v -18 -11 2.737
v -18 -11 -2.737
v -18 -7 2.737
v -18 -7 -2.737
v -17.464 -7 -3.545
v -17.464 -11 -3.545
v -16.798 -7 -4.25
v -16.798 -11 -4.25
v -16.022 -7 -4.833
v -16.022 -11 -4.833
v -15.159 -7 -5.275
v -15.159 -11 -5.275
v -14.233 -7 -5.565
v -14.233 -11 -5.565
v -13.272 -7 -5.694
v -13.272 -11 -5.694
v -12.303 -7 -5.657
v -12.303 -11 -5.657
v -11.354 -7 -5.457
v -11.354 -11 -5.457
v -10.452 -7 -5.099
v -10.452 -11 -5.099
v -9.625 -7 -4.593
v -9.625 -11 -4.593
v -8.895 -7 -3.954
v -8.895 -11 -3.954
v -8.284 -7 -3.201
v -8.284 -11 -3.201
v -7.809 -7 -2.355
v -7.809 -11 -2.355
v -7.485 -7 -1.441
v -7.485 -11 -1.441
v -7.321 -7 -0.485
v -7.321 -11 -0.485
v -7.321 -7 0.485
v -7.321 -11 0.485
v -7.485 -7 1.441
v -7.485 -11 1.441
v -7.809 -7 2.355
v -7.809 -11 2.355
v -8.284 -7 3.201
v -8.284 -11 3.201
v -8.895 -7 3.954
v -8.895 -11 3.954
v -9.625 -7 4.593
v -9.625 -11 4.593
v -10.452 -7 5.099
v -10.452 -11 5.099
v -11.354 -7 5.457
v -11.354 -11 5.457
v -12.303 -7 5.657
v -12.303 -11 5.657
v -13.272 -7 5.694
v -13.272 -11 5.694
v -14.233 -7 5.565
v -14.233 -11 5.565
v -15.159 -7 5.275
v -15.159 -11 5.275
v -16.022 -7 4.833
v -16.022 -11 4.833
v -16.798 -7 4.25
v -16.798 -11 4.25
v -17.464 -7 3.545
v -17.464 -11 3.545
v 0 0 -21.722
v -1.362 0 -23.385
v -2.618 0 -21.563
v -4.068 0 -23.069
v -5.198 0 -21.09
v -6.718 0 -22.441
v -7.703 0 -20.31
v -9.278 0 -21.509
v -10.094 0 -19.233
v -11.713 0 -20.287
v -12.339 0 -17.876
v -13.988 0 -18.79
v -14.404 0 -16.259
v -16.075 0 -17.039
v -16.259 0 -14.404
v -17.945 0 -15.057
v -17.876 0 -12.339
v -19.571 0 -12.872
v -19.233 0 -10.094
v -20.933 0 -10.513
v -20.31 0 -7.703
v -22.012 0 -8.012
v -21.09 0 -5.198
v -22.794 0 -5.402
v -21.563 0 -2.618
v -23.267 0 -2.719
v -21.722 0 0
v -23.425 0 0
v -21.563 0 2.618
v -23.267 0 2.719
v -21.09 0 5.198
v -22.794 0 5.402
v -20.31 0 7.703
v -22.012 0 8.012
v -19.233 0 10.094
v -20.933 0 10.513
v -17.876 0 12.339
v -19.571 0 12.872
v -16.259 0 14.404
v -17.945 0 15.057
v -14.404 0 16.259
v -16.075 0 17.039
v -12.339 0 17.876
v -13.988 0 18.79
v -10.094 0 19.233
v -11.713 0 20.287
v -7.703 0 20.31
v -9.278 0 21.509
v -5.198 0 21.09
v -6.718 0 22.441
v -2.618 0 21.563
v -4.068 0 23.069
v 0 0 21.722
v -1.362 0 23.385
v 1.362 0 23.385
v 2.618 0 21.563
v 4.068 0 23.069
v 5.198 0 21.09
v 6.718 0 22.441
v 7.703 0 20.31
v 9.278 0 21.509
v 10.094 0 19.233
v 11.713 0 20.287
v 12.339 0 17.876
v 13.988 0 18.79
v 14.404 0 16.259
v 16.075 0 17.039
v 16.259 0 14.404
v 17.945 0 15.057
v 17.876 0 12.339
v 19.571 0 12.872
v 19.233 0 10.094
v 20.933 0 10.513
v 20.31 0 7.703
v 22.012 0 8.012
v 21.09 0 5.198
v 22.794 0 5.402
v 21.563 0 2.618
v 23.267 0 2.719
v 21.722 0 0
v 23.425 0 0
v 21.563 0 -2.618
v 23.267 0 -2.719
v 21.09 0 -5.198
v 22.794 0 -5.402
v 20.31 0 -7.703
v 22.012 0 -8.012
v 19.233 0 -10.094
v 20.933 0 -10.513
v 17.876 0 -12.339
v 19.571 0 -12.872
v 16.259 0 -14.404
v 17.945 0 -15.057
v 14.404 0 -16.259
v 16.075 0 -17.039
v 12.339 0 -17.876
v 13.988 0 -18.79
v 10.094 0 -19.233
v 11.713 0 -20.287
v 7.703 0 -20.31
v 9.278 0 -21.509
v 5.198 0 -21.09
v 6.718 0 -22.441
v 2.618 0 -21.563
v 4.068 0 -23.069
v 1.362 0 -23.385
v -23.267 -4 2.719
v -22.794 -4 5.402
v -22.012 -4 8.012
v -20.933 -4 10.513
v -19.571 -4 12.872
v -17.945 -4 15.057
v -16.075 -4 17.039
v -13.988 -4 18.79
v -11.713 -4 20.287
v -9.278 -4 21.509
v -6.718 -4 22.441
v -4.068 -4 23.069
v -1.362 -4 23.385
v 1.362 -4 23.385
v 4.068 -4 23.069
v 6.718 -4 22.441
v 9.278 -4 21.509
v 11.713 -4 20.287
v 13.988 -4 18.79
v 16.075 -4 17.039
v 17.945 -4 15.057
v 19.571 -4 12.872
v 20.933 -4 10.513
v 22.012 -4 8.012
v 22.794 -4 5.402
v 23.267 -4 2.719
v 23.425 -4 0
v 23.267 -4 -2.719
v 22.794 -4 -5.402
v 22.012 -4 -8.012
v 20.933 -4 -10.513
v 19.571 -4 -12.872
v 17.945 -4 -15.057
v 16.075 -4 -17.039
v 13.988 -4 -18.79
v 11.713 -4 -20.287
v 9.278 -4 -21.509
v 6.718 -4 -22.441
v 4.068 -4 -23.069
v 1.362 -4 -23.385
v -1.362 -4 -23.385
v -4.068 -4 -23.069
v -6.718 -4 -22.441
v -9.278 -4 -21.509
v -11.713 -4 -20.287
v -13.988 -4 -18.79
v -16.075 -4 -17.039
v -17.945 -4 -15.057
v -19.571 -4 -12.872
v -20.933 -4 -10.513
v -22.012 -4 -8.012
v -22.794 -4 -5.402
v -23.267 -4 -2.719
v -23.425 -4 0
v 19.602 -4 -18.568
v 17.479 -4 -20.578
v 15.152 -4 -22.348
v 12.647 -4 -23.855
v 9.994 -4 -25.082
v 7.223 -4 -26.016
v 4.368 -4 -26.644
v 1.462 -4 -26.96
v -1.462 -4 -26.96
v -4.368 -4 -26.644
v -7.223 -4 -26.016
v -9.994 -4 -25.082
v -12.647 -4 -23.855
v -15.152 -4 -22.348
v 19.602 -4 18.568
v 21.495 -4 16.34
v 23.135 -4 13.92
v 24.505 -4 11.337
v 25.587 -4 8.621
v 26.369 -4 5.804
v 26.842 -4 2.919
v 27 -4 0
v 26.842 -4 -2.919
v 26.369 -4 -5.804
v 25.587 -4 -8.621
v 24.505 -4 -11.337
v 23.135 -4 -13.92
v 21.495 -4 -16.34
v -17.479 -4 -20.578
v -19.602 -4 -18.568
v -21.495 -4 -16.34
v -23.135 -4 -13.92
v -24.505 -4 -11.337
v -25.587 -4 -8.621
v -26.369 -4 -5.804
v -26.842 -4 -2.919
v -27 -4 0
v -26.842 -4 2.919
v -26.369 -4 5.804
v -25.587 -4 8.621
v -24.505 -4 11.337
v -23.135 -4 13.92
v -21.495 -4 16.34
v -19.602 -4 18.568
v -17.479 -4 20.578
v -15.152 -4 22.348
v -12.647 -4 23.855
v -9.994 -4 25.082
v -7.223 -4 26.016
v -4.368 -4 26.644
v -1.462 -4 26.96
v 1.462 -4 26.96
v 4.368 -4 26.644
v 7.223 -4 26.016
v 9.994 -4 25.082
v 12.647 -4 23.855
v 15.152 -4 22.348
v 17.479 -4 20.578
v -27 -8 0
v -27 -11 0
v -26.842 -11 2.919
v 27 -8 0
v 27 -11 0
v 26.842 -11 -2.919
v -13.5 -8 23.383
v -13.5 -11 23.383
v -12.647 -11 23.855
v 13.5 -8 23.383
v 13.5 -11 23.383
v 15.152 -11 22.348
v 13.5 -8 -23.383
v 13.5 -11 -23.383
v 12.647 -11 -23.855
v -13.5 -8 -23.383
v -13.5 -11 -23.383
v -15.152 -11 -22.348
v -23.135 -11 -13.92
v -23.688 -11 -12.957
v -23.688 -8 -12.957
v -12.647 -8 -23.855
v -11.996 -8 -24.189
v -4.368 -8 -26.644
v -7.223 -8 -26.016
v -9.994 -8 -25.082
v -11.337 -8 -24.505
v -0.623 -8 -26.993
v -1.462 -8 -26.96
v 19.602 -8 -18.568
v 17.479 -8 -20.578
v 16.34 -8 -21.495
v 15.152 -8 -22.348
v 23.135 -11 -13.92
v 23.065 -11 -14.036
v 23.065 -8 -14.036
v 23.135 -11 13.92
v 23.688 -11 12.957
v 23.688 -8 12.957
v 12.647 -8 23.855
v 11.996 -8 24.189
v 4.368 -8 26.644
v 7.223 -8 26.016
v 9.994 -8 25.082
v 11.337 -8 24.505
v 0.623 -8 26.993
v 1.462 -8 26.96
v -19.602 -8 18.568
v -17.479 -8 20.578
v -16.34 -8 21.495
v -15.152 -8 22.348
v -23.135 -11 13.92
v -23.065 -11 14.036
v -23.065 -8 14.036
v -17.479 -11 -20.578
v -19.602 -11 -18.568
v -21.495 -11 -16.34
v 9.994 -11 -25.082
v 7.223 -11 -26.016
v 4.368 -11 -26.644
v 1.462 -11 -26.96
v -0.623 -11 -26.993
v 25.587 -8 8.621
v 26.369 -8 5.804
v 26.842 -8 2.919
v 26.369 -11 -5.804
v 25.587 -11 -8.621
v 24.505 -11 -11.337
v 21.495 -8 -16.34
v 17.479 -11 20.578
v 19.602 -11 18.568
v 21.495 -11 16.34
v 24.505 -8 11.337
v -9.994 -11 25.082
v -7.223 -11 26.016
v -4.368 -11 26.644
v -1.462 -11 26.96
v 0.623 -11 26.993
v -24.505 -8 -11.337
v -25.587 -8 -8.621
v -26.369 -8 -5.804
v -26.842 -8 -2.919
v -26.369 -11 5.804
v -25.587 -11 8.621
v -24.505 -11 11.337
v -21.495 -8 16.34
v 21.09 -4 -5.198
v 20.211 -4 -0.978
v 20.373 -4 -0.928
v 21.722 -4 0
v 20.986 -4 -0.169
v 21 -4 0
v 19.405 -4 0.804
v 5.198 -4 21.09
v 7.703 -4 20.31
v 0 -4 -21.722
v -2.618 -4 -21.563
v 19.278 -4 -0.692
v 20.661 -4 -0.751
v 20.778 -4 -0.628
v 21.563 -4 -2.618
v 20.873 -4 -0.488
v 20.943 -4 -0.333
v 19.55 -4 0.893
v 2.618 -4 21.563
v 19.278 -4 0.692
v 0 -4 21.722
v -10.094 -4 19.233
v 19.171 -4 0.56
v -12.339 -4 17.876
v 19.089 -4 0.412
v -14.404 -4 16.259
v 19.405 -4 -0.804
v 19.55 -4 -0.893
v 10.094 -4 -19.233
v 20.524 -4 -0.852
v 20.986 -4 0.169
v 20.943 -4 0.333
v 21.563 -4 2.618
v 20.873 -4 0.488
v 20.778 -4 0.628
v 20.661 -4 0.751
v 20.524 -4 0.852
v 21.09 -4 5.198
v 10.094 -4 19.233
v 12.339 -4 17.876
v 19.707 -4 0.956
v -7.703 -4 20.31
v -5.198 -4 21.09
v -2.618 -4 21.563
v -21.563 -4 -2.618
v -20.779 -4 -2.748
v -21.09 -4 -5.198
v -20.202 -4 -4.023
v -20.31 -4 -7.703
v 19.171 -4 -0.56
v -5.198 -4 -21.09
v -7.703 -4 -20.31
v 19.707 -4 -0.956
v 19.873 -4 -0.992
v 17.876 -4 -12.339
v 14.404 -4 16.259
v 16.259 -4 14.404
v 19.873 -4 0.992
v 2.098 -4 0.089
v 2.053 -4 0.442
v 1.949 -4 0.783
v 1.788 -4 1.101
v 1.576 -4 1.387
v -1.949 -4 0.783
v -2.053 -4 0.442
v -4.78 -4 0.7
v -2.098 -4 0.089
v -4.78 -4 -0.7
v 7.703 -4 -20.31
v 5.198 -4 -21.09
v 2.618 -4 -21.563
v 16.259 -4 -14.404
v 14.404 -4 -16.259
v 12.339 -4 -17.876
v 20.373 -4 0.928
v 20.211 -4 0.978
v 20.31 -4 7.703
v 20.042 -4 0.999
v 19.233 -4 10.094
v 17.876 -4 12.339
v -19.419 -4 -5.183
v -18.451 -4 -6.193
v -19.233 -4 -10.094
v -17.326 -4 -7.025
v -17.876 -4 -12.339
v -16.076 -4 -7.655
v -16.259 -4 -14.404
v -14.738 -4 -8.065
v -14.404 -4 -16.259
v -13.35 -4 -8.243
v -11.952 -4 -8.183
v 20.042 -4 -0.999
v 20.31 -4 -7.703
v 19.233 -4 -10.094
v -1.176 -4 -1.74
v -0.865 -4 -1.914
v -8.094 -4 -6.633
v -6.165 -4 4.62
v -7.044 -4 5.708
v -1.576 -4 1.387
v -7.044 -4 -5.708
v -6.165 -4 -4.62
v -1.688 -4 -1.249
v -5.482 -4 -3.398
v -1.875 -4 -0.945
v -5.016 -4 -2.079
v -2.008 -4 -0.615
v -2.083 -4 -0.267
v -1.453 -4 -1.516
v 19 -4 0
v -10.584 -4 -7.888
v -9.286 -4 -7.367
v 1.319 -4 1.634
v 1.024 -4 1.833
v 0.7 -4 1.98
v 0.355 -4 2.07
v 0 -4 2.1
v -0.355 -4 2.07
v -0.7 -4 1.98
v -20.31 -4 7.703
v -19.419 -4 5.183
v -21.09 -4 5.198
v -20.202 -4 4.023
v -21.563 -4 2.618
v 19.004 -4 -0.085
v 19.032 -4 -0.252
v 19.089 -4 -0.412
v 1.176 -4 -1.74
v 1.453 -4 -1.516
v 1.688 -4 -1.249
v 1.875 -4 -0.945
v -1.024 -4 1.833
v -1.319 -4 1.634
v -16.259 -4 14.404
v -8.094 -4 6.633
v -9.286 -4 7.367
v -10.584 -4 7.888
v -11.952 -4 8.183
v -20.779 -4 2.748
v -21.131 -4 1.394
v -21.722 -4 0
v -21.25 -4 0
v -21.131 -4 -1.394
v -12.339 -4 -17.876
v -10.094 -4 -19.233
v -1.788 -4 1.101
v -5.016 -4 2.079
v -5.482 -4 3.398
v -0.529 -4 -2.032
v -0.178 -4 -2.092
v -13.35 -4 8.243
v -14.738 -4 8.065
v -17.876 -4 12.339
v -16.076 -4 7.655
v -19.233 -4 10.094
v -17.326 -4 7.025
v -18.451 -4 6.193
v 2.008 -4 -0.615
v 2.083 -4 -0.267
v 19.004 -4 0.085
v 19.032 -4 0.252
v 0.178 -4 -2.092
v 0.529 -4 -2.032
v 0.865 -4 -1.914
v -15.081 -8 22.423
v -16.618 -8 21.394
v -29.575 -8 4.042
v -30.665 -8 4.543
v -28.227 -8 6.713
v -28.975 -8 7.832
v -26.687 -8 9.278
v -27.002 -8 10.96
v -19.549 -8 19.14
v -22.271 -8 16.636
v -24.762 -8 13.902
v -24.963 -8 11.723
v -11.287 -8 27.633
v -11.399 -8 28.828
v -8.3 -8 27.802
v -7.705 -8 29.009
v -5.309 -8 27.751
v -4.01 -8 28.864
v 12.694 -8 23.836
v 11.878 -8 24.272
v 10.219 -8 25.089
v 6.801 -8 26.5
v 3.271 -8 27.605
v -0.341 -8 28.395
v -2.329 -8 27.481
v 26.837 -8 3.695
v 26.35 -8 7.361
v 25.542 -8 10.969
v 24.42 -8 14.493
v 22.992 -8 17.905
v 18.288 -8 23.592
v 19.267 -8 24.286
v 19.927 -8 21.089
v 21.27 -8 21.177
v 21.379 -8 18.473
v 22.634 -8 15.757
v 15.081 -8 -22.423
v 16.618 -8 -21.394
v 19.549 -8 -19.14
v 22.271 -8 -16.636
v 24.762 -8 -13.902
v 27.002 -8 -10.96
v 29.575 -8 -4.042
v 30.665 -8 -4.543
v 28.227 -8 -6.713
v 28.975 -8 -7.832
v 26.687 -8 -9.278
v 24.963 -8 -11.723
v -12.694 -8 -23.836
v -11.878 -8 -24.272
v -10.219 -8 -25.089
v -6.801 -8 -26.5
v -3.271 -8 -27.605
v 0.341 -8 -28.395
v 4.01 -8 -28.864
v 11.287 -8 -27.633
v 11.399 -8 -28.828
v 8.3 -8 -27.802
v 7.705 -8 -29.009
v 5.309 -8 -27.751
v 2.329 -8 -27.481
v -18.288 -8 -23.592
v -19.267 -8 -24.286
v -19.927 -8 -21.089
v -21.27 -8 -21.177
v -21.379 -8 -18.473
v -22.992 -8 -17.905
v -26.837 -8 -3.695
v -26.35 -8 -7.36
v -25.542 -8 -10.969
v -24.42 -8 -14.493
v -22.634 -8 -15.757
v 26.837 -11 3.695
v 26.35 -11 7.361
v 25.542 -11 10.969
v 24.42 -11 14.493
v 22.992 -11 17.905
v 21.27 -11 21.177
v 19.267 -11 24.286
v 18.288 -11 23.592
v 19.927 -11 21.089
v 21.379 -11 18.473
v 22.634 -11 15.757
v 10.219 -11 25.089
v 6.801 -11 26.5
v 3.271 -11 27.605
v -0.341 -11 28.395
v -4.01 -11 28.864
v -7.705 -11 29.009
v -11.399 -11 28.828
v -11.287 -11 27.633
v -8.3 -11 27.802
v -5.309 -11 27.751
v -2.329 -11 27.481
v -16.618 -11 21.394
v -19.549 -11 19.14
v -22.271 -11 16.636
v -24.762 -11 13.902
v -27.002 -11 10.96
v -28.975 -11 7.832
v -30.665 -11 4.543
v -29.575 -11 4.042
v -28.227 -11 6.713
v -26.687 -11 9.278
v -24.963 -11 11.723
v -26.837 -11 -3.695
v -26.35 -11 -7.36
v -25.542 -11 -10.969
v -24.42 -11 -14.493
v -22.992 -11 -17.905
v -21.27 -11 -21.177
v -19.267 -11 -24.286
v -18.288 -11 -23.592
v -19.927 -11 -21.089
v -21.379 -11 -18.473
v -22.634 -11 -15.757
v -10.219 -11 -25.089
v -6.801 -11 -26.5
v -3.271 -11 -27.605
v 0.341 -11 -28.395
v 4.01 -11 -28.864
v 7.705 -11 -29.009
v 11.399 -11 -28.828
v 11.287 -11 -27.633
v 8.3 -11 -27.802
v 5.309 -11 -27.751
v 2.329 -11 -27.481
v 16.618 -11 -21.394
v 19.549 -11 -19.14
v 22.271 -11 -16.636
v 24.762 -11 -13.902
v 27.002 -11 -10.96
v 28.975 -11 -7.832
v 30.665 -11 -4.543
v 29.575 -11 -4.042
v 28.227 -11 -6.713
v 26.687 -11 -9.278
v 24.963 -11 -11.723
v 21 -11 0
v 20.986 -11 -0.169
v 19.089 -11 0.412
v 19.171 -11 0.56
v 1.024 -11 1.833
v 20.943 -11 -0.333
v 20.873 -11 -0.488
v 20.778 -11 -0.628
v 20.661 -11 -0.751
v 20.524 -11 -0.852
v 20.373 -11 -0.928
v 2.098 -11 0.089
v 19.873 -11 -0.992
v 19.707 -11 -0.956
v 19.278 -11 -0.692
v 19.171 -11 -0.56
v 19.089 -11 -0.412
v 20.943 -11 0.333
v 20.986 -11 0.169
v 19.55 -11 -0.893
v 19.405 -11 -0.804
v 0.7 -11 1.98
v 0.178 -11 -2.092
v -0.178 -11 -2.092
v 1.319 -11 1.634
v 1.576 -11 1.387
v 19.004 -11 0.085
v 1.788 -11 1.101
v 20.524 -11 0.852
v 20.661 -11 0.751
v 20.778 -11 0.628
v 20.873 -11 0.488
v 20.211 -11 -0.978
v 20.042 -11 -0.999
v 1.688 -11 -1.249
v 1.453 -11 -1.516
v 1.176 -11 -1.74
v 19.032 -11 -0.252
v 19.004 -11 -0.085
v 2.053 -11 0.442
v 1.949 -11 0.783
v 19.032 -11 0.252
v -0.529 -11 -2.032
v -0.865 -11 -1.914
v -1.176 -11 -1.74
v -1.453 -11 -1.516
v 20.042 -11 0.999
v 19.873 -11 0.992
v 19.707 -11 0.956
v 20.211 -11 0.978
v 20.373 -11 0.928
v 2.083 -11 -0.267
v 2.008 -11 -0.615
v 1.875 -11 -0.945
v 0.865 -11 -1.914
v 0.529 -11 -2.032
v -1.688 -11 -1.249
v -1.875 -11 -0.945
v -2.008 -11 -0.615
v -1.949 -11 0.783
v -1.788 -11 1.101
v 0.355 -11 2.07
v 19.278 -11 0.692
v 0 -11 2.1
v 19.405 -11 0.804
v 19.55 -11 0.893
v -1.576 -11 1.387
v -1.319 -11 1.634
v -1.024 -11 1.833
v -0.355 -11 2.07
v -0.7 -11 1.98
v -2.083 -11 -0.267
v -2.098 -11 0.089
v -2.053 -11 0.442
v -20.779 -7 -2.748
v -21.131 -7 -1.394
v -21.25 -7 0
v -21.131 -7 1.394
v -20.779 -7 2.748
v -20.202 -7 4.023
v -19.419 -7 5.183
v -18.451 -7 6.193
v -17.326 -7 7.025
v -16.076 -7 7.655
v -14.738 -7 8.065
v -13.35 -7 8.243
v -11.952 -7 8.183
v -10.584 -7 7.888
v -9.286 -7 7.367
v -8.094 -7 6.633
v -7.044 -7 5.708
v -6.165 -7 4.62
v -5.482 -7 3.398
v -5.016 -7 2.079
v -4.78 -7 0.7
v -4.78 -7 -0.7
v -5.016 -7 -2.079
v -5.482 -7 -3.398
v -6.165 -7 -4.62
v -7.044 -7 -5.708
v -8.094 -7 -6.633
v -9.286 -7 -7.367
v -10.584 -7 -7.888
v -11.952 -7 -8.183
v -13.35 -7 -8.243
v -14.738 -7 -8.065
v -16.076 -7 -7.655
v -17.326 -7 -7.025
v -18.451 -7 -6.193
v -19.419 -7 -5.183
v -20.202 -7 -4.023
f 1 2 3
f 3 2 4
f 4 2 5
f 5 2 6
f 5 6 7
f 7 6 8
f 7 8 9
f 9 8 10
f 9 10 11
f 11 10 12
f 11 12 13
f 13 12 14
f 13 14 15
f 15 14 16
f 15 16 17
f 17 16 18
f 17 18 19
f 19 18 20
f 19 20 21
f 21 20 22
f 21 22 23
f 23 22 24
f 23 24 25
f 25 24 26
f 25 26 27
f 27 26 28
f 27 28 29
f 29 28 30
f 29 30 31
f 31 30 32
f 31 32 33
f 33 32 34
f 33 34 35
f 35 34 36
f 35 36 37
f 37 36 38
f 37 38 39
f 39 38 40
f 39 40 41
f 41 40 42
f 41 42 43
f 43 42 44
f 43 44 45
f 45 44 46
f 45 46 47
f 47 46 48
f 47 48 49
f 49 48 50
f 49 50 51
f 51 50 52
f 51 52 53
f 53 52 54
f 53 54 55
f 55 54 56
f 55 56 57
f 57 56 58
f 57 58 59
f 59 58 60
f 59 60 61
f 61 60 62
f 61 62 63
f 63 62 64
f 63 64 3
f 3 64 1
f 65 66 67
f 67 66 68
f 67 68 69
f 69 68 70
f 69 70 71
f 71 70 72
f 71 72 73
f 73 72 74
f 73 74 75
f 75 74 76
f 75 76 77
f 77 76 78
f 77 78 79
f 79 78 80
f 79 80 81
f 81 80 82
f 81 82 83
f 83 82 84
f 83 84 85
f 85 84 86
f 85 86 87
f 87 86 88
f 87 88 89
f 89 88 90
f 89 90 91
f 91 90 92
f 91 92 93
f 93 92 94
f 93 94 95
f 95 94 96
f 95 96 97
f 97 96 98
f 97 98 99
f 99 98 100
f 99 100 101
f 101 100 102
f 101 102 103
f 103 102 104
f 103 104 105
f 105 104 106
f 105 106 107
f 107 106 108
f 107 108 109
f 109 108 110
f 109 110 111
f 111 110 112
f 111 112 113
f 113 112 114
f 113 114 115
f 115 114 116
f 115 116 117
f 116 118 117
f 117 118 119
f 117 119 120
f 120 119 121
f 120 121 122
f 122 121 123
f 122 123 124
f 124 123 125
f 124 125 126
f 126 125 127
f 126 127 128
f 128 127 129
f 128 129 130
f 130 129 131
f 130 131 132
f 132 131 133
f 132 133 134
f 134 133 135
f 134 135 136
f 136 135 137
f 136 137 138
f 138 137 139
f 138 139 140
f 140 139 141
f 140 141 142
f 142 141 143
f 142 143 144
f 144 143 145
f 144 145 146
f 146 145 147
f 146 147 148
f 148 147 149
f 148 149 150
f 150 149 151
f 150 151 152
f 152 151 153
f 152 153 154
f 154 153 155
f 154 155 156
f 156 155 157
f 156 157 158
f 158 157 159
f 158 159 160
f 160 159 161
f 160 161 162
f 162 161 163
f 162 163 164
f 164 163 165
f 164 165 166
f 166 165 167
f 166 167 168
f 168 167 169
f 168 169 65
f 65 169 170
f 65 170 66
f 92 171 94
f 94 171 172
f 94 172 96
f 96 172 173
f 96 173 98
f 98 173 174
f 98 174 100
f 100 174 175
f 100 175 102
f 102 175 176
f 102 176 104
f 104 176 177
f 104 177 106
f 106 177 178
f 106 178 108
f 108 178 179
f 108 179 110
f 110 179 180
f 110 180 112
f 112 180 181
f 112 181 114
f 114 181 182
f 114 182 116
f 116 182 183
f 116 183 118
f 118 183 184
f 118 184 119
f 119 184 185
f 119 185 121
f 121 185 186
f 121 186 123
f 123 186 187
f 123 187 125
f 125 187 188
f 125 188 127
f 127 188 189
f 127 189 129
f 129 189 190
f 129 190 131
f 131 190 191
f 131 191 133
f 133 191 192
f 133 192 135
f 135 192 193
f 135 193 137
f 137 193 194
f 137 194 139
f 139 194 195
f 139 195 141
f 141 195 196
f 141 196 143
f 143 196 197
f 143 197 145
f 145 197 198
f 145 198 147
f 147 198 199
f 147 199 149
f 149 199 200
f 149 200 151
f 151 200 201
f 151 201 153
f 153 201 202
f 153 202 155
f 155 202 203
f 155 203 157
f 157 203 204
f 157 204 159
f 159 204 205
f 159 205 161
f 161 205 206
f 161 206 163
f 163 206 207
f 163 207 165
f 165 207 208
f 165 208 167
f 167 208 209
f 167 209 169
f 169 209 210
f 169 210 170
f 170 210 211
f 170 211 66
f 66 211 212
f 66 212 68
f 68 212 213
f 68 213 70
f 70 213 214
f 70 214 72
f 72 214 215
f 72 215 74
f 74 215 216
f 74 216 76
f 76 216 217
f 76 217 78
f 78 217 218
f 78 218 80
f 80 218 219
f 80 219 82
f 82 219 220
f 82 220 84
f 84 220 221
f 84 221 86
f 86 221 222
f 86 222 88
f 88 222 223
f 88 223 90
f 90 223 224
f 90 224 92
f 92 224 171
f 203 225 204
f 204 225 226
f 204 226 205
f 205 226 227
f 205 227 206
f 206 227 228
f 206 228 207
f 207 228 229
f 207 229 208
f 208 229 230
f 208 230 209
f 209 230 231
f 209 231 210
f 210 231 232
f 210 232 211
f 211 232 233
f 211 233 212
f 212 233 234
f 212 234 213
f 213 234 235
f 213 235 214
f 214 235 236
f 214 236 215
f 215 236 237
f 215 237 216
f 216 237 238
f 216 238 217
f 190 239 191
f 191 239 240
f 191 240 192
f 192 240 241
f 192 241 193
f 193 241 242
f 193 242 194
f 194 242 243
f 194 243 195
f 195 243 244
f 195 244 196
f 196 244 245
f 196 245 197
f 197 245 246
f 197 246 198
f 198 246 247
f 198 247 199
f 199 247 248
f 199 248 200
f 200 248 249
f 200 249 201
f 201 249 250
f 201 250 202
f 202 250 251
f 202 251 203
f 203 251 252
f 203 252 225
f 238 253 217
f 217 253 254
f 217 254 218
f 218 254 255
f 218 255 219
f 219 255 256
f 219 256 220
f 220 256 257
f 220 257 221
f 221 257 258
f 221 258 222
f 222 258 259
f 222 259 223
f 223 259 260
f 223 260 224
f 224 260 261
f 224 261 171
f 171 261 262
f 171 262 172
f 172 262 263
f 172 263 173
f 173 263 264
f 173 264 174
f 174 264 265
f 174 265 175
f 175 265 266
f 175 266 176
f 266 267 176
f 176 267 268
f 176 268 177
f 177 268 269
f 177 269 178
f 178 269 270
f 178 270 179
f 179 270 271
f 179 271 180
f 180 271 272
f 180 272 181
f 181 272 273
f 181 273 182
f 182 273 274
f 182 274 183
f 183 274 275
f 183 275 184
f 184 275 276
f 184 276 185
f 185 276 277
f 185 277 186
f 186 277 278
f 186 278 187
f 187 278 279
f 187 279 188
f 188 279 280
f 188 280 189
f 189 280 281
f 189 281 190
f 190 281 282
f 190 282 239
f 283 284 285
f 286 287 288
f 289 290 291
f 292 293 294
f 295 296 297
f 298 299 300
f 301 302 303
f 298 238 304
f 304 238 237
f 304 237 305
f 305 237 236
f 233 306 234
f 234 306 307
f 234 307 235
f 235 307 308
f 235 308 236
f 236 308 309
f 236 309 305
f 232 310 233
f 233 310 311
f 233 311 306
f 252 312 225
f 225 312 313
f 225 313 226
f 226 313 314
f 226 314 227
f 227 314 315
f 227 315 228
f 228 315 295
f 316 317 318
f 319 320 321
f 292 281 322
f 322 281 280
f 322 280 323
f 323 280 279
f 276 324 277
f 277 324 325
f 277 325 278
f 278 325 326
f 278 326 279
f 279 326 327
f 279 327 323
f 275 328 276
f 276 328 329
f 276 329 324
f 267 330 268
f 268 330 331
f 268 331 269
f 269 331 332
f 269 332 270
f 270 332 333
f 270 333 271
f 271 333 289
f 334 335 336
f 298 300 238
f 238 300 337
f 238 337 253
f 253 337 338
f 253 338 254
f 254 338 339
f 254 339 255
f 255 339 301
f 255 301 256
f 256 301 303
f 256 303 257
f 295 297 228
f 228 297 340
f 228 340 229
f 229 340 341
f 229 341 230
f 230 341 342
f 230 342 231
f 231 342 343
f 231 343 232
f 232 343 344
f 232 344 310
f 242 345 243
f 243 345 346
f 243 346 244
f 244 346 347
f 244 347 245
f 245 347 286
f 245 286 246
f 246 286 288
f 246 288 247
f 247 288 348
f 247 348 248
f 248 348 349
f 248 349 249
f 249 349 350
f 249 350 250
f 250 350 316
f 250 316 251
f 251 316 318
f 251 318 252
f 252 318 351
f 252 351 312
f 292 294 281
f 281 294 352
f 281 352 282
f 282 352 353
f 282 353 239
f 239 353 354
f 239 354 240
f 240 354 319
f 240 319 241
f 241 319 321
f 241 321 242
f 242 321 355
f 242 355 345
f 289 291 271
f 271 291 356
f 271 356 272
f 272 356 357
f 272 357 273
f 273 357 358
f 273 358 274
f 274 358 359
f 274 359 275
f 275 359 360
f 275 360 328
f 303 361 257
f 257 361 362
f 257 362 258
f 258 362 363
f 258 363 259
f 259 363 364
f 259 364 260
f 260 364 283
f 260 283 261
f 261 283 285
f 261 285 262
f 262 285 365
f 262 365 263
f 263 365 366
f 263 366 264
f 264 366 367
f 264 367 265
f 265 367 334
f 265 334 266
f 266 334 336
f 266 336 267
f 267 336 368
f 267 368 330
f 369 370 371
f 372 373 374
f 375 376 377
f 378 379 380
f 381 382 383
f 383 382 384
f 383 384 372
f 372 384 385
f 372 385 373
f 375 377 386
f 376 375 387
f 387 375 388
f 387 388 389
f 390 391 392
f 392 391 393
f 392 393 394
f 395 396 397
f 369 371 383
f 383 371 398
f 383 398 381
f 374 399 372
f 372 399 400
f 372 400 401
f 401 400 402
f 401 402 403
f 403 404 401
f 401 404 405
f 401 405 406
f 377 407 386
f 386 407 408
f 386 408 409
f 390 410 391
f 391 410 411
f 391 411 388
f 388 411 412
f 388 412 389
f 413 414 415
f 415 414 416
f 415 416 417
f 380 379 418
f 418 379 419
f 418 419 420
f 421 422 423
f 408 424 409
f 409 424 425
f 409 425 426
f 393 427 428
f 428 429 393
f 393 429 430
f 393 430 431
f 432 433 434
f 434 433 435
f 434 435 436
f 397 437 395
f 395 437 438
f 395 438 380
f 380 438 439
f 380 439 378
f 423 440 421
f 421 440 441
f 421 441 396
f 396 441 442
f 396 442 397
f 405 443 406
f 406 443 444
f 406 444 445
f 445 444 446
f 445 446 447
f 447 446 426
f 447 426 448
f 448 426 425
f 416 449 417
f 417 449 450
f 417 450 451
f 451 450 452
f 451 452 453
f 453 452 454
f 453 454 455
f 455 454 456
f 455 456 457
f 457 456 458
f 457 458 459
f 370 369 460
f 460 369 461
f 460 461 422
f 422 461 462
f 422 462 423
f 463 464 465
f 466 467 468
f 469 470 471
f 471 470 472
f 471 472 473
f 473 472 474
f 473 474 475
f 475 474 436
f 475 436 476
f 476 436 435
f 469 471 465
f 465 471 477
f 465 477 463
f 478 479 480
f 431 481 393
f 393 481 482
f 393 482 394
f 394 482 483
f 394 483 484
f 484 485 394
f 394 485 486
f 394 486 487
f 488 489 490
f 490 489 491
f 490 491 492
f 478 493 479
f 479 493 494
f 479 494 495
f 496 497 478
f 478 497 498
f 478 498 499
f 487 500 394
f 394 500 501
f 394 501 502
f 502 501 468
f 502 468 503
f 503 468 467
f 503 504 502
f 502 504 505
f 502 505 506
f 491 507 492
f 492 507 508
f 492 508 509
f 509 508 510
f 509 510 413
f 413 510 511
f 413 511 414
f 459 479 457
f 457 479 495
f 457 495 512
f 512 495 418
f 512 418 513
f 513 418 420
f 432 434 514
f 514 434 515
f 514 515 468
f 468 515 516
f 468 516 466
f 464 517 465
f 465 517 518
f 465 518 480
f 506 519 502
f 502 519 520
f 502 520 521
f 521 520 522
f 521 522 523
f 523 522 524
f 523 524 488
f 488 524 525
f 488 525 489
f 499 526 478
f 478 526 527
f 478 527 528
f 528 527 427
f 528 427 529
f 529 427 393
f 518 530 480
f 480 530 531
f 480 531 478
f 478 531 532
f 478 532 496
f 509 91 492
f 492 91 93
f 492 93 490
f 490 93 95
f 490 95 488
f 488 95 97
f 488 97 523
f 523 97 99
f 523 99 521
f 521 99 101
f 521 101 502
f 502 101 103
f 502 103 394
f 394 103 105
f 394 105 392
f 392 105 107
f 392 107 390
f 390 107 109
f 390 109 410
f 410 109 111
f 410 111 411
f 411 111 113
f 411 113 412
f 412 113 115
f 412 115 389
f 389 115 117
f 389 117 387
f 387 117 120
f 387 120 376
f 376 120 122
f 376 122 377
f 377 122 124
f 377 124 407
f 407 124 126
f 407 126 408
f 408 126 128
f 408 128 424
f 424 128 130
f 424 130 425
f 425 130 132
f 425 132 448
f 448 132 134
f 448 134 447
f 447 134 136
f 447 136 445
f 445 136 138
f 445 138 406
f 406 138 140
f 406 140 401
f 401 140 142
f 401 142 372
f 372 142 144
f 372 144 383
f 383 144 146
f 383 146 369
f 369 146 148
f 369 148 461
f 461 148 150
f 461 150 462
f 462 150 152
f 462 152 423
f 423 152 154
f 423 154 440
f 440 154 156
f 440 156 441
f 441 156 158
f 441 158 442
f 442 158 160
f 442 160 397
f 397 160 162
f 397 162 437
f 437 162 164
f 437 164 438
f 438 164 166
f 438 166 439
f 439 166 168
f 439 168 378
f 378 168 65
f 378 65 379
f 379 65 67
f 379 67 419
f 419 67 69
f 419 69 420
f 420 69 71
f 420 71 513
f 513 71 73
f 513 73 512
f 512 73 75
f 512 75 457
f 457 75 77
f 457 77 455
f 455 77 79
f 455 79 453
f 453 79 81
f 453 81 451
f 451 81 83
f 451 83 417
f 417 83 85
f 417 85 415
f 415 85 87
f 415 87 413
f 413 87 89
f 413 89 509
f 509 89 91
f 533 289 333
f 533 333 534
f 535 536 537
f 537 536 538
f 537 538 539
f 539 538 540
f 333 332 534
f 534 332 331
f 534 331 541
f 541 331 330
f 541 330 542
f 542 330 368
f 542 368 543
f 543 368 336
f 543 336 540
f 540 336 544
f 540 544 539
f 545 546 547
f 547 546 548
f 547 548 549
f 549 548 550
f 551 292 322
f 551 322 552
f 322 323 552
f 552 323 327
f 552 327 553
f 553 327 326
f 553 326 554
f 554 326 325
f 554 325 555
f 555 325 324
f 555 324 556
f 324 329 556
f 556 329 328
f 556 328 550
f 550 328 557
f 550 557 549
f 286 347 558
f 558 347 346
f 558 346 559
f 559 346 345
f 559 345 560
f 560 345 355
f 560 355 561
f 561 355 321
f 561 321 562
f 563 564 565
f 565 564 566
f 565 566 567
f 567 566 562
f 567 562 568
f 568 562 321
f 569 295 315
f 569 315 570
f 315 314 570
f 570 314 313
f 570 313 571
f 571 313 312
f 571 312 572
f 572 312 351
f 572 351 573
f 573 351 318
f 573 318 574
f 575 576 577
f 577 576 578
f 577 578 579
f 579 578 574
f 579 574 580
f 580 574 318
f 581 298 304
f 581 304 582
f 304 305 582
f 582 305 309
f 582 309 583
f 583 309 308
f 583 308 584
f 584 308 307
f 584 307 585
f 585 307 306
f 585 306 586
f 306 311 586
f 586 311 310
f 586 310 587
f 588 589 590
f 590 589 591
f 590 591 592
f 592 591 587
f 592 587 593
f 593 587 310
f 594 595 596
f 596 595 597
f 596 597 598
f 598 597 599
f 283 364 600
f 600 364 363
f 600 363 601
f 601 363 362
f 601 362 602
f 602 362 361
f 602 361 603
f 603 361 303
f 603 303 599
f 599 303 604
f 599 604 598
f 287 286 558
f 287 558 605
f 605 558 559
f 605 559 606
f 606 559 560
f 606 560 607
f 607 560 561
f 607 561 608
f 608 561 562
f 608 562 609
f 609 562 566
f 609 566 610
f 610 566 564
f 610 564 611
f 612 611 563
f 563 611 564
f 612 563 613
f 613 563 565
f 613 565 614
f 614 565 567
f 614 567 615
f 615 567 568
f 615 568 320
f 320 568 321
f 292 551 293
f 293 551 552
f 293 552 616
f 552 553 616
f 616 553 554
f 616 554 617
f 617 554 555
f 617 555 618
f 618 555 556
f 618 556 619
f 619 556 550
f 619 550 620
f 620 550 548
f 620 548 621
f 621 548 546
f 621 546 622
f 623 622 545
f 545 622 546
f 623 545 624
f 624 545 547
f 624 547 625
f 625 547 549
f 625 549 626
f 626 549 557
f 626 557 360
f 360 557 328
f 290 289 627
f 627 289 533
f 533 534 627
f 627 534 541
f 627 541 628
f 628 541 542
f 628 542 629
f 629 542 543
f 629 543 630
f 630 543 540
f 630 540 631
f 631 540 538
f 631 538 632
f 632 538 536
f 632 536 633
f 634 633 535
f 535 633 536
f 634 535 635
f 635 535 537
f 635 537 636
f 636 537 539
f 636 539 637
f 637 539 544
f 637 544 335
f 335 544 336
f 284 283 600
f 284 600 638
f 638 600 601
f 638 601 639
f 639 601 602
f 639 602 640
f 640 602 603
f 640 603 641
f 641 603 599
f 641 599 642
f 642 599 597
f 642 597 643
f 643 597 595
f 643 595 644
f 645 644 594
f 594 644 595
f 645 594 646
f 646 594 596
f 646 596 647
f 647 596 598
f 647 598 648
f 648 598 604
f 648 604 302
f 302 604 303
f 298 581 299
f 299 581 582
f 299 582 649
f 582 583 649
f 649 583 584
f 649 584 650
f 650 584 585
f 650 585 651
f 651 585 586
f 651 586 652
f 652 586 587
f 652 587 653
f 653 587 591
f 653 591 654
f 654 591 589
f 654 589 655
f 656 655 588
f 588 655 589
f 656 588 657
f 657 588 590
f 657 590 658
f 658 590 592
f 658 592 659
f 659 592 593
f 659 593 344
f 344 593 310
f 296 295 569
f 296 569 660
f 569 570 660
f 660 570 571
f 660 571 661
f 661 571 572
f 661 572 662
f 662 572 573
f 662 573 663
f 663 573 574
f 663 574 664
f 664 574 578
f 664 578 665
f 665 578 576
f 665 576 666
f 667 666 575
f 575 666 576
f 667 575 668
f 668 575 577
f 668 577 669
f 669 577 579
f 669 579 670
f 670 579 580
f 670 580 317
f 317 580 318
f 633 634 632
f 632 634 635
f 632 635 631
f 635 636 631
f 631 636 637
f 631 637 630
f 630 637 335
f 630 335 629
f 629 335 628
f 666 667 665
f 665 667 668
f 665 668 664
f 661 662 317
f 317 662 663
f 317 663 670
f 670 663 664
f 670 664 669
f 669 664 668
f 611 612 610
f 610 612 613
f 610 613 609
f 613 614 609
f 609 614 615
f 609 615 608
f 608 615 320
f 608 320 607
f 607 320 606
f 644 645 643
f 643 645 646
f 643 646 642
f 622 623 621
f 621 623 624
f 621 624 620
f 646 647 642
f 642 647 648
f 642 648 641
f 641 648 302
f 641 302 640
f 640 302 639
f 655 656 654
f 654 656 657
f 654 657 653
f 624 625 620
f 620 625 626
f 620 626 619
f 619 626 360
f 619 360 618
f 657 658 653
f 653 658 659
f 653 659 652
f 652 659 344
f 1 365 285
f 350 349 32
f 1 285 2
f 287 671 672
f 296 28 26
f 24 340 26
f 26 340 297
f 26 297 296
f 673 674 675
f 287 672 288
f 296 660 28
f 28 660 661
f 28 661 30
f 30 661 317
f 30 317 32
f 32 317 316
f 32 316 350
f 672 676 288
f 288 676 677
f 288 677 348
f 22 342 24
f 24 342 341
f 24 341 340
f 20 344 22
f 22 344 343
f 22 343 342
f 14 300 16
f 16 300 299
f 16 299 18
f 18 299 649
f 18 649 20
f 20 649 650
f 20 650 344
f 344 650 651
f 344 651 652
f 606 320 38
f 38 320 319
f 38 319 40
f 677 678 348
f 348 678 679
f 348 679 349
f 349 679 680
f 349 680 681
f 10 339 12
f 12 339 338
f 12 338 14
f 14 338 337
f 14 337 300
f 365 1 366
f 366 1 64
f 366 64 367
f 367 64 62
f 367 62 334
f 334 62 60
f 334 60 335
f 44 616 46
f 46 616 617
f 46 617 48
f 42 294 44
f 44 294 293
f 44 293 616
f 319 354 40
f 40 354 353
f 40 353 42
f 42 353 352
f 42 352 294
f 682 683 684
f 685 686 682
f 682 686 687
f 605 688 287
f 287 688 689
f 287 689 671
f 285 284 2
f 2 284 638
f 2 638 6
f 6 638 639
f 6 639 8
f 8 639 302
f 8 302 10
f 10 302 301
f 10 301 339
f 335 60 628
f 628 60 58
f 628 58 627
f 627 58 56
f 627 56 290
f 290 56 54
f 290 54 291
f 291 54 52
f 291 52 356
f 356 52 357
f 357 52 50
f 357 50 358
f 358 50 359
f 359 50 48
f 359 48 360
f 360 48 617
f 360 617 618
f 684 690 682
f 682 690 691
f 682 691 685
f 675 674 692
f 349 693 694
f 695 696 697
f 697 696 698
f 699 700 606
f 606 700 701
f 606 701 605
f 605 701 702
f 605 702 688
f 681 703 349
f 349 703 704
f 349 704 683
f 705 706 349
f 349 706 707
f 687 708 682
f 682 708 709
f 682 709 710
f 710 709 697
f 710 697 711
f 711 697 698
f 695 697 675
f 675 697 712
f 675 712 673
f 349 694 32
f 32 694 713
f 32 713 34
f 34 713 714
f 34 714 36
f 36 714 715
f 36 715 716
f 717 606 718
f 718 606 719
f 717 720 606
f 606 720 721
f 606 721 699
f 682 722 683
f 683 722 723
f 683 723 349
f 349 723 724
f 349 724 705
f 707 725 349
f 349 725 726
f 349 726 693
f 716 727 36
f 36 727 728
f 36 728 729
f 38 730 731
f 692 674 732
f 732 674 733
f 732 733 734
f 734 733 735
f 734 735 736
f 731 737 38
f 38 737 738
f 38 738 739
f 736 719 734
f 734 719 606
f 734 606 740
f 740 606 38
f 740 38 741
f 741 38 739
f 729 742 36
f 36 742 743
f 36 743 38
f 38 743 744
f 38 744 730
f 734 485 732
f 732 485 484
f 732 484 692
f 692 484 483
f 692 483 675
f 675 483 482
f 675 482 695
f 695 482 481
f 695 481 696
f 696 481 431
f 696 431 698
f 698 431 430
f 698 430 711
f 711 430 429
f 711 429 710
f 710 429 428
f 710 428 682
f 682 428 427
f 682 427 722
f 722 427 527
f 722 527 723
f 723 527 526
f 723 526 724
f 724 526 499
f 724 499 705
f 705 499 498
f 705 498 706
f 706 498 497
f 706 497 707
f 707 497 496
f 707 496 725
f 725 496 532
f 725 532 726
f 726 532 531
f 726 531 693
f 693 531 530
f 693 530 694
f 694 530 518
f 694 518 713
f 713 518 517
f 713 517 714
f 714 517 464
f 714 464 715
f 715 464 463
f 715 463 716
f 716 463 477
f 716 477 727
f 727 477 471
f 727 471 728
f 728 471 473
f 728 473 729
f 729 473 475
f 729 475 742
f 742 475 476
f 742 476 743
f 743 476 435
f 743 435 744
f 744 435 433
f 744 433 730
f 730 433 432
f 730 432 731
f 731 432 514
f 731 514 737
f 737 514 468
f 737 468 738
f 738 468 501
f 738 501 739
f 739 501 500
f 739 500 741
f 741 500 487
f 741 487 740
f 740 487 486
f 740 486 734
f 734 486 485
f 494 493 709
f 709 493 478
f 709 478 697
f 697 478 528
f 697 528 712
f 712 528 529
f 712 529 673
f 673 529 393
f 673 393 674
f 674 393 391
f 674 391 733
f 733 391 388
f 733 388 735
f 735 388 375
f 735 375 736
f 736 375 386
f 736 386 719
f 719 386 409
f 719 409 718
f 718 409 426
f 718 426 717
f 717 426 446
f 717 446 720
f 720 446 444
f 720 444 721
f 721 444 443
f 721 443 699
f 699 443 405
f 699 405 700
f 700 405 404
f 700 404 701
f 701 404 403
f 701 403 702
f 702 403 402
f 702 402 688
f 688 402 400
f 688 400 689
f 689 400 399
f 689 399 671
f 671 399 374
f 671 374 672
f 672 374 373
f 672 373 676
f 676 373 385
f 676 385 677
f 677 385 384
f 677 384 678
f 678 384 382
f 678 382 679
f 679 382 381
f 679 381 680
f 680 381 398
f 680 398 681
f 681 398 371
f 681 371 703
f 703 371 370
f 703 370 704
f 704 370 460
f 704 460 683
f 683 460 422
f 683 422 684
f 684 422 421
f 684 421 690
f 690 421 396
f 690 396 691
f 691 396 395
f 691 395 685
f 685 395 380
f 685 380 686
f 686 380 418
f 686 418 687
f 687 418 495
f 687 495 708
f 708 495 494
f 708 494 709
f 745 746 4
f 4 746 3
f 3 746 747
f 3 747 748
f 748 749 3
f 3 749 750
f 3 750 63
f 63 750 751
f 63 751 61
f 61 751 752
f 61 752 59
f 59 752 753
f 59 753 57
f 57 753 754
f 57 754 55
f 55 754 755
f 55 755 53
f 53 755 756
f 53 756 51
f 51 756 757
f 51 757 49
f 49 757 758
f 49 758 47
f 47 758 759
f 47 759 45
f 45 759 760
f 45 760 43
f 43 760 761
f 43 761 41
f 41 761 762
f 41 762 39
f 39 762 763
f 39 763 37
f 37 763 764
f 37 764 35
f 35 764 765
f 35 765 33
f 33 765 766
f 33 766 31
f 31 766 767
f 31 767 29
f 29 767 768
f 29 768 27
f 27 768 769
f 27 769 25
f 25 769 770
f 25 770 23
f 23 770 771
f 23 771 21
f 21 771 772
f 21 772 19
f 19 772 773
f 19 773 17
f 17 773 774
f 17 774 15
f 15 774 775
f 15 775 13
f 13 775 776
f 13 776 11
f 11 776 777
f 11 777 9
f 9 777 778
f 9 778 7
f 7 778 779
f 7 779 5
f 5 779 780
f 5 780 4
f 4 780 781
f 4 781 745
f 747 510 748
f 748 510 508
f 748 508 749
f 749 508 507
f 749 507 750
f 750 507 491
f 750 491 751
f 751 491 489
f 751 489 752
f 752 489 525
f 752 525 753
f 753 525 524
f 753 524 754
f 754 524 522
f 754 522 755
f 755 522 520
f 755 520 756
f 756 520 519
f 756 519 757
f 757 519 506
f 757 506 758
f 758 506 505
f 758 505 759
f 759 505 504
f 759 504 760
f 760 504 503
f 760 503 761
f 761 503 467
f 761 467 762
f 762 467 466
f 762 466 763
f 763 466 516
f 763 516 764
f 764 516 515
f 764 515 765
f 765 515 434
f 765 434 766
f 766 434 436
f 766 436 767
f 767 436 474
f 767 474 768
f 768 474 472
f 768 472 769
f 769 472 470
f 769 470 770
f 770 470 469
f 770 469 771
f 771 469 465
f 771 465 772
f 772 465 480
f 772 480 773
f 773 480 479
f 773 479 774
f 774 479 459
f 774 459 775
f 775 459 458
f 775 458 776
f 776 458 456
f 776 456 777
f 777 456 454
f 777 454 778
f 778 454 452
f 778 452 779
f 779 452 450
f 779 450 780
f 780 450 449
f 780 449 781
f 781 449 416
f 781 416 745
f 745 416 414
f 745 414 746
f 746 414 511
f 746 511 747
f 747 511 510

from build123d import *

# Parameters (mm, degrees)
BOSS_EXTRUDE1_DEPTH        = 3
F_4_2_4_2_DIAMETER_HOLE1_D = 4.2
SKETCH24_R                 = 1
CUT_EXTRUDE3_DEPTH         = 10
SKETCH25_R                 = 8.25
CUT_EXTRUDE4_DEPTH         = 3


with BuildPart() as part:
    # Sketch1 → Revolve1 (revolve)
    with BuildSketch(Plane.XY):
        Polygon((-23.425, 0), (-23.425, -4), (-27, -4), (-27, -8), (0, -8), (0, -4), (-21.721500416, -4), (-21.721500416, 0), align=None)
    revolve(axis=Axis((0, -8, 0), (0, -1, 0)))

    # Sketch18 → Boss-Extrude1 (add)
    with BuildSketch(Plane.XZ.offset(8)):
        with BuildLine():
            Line((18.287619048, 23.591829478), (19.266666667, 24.285706816))
            ThreePointArc((19.266666667, 24.285706816), (25.019995002, 12.743625858), (27, 0))
            ThreePointArc((27, 0), (25.997622732, -7.288594671), (23.06491761, -14.036009962))
            ThreePointArc((23.06491761, -14.036009962), (26.687121428, -9.277998508), (29.574933174, -4.041627931))
            Line((29.574933174, -4.041627931), (30.665372385, -4.542569372))
            ThreePointArc((30.665372385, -4.542569372), (23.54630123, -15.296138346), (13.5, -23.382685902))
            ThreePointArc((13.5, -23.382685902), (6.686703224, -26.158899059), (-0.62308239, -26.992809567))
            ThreePointArc((-0.62308239, -26.992809567), (5.30857831, -27.750724365), (11.287314126, -27.633457409))
            Line((11.287314126, -27.633457409), (11.398705718, -28.828276188))
            ThreePointArc((11.398705718, -28.828276188), (-1.473693772, -28.039764204), (-13.5, -23.382685902))
            ThreePointArc((-13.5, -23.382685902), (-19.310919509, -18.870304389), (-23.688, -12.956799605))
            ThreePointArc((-23.688, -12.956799605), (-21.378543119, -18.472725857), (-18.287619048, -23.591829478))
            Line((-18.287619048, -23.591829478), (-19.266666667, -24.285706816))
            ThreePointArc((-19.266666667, -24.285706816), (-25.019995002, -12.743625858), (-27, 0))
            ThreePointArc((-27, 0), (-25.997622732, 7.288594671), (-23.06491761, 14.036009962))
            ThreePointArc((-23.06491761, 14.036009962), (-26.687121428, 9.277998508), (-29.574933174, 4.041627931))
            Line((-29.574933174, 4.041627931), (-30.665372385, 4.542569372))
            ThreePointArc((-30.665372385, 4.542569372), (-23.54630123, 15.296138346), (-13.5, 23.382685902))
            ThreePointArc((-13.5, 23.382685902), (-6.686703224, 26.158899059), (0.62308239, 26.992809567))
            ThreePointArc((0.62308239, 26.992809567), (-5.30857831, 27.750724365), (-11.287314126, 27.633457409))
            Line((-11.287314126, 27.633457409), (-11.398705718, 28.828276188))
            ThreePointArc((-11.398705718, 28.828276188), (1.473693772, 28.039764204), (13.5, 23.382685902))
            ThreePointArc((13.5, 23.382685902), (19.310919509, 18.870304389), (23.688, 12.956799605))
            ThreePointArc((23.688, 12.956799605), (21.378543119, 18.472725857), (18.287619048, 23.591829478))
        make_face()
    extrude(amount=BOSS_EXTRUDE1_DEPTH)

    # Ø4.2 (4.2) Diameter Hole1 (through all)
    with Locations(Plane(origin=(0, -4, 0), x_dir=(1, 0, 0), z_dir=(0, 1, 0))):
        with Locations((0, 0)):
            Hole(F_4_2_4_2_DIAMETER_HOLE1_D / 2)

    # Sketch24 → Cut-Extrude3 (cut)
    with BuildSketch(Plane.XZ.offset(11)):
        with BuildLine():
            ThreePointArc((-7.3, 0), (-11.587555311, 5.522227811), (-18, 2.736786437))
            Line((-18, 2.736786437), (-18, -2.736786437))
            ThreePointArc((-18, -2.736786437), (-11.587555311, -5.522227811), (-7.3, 0))
        make_face()
        with Locations((20, 0)):
            Circle(SKETCH24_R)
    extrude(amount=-CUT_EXTRUDE3_DEPTH, mode=Mode.SUBTRACT)

    # Sketch25 → Cut-Extrude4 (cut)
    with BuildSketch(Plane(origin=(0, -4, 0), x_dir=(1, 0, 0), z_dir=(0, 1, 0))):
        with Locations((-13, 0)):
            Circle(SKETCH25_R)
    extrude(amount=-CUT_EXTRUDE4_DEPTH, mode=Mode.SUBTRACT)


solid = part.part
